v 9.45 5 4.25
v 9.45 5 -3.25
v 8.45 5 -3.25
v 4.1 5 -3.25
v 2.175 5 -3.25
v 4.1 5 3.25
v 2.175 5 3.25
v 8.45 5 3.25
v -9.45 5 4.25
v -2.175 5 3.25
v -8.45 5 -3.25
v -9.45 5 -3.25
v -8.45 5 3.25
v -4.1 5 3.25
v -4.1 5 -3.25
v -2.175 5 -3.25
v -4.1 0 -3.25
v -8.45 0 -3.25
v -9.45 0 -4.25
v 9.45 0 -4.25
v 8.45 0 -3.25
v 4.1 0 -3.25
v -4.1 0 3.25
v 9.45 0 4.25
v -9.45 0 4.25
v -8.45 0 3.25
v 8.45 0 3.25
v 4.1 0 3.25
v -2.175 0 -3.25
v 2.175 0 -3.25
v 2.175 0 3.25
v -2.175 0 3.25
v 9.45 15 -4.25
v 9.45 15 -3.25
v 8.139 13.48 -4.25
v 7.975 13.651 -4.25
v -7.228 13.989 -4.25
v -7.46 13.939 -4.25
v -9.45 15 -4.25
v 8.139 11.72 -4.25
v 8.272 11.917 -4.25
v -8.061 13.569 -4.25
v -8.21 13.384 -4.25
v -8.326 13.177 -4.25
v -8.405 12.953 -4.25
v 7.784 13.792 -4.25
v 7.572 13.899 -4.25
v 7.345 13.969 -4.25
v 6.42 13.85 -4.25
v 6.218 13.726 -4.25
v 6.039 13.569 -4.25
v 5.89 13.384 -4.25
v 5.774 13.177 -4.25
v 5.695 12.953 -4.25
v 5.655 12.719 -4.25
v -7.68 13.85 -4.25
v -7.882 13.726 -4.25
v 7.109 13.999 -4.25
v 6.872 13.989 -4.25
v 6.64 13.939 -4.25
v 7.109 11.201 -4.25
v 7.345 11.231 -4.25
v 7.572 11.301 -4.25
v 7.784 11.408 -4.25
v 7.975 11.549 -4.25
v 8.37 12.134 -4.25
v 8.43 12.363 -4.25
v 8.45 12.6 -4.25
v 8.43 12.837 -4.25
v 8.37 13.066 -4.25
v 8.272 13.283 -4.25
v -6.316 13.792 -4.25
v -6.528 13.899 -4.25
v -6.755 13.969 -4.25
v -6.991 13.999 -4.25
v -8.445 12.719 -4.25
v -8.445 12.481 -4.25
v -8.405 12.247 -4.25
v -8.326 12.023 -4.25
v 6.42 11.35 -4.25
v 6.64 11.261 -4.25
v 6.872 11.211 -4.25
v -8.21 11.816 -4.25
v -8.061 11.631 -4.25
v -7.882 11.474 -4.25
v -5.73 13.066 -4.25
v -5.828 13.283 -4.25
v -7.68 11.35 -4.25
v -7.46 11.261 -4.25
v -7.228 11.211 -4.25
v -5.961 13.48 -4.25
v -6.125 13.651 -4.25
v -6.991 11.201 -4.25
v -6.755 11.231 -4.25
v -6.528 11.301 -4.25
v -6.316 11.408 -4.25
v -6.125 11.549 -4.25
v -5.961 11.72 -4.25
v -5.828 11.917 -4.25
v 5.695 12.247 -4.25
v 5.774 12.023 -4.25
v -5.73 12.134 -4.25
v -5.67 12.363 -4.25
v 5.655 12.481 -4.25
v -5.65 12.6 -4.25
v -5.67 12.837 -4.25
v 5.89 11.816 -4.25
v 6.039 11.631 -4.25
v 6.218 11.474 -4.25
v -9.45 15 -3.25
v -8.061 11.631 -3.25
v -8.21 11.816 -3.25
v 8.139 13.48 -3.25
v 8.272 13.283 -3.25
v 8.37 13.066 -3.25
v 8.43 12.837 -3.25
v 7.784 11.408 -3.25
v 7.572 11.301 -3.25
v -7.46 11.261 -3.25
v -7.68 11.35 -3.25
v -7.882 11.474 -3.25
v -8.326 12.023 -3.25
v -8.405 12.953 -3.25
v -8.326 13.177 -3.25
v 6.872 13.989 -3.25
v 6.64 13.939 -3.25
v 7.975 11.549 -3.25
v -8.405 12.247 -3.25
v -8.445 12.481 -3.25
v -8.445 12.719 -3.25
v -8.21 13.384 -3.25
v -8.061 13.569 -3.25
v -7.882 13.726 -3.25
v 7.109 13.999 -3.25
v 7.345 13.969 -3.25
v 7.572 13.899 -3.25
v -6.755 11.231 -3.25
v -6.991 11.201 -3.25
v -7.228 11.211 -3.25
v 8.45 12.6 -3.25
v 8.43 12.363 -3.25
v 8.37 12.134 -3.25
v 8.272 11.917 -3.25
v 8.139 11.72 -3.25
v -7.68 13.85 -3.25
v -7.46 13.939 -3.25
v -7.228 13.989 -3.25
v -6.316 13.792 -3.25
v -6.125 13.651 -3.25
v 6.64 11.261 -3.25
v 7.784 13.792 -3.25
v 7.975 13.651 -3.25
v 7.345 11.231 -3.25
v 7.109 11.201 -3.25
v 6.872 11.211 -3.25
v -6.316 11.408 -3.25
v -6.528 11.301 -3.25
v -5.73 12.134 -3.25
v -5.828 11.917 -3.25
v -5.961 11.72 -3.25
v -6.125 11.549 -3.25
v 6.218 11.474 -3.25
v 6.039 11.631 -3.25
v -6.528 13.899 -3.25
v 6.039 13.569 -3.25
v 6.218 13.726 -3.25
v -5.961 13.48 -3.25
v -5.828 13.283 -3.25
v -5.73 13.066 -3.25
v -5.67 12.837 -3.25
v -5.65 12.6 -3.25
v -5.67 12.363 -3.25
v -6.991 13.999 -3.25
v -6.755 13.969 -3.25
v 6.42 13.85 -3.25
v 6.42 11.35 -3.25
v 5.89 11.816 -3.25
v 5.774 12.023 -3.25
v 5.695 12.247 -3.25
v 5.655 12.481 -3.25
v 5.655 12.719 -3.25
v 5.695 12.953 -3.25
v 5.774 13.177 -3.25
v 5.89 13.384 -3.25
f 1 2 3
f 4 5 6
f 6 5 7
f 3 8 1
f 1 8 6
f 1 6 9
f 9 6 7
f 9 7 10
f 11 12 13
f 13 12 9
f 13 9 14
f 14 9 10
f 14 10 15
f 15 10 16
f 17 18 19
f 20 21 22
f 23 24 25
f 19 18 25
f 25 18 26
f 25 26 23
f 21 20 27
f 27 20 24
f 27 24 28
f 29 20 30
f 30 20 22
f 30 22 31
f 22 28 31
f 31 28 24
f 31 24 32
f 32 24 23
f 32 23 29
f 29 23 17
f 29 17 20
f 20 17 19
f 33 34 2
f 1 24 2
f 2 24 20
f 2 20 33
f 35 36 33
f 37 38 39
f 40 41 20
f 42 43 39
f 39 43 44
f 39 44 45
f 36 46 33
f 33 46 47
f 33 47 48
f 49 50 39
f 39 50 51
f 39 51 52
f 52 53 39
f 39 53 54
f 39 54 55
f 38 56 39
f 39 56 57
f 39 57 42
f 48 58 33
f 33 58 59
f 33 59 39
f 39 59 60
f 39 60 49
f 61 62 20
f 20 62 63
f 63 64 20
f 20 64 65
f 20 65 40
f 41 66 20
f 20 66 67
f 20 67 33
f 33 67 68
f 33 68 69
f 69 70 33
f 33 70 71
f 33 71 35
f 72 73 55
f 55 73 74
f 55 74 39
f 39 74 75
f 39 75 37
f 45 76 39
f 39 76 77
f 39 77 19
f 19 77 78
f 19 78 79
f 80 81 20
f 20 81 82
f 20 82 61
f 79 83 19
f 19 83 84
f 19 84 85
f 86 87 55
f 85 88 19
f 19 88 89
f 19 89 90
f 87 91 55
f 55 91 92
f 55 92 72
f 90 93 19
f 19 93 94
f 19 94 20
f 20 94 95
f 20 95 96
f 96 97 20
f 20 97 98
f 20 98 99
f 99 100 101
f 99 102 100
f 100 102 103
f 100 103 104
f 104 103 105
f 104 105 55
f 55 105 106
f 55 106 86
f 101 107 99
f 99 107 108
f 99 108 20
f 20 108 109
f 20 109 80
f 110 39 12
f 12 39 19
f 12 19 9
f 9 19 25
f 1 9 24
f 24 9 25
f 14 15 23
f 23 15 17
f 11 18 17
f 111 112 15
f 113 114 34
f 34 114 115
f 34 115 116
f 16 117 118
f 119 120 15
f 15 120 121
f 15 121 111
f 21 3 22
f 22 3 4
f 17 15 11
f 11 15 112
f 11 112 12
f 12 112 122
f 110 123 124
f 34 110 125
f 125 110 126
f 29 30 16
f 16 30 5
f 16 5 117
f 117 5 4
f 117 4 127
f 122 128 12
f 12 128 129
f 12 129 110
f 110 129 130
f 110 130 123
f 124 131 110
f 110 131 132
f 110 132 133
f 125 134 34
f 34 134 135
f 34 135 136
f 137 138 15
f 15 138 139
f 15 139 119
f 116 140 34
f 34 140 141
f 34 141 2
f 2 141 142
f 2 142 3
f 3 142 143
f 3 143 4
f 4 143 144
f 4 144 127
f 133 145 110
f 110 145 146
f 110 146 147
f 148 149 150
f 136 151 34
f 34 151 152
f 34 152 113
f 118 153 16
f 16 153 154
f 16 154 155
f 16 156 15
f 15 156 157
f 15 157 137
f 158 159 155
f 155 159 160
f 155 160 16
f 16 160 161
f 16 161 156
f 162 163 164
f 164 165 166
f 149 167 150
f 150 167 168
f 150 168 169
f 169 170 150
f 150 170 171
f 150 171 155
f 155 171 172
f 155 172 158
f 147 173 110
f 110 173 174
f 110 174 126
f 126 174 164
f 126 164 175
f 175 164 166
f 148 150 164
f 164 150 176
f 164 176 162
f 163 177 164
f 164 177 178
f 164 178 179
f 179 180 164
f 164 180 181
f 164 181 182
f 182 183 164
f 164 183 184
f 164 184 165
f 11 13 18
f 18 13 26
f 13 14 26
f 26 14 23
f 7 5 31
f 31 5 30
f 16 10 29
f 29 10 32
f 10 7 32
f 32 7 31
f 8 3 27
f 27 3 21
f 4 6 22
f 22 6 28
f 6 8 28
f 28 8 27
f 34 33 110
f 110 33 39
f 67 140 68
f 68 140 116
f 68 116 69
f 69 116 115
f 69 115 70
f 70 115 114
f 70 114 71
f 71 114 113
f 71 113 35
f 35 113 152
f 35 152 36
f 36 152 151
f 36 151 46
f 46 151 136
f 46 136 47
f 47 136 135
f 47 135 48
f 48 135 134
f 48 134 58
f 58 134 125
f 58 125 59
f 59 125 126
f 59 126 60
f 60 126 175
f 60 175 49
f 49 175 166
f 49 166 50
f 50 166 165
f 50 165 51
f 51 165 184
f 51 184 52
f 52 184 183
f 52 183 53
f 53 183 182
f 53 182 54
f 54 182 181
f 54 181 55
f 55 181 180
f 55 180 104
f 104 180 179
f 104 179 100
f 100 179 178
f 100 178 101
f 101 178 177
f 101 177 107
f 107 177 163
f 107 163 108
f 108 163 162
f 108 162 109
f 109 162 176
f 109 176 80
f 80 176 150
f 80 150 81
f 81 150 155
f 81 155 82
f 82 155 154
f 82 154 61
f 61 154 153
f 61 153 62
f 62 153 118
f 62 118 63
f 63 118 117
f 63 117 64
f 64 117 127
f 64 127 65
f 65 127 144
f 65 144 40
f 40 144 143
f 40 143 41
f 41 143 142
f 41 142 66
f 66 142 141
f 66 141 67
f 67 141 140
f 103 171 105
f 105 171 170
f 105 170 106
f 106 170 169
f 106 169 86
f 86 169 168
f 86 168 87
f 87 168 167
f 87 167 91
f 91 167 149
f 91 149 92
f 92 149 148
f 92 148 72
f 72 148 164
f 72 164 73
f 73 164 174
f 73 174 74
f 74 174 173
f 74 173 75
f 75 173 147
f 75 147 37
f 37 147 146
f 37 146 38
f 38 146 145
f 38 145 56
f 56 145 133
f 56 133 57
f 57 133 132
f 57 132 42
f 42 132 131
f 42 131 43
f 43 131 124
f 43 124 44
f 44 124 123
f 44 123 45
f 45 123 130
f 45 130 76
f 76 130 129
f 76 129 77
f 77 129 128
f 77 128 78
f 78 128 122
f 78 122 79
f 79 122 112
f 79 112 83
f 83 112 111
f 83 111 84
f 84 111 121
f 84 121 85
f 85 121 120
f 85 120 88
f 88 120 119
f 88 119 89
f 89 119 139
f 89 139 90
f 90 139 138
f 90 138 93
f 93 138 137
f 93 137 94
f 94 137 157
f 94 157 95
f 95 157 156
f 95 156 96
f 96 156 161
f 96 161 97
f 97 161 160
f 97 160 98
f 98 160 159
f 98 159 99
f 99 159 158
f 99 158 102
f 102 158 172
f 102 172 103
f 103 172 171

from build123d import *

# Parameters (mm, degrees)
SKETCH1_W           = 18.9
SKETCH1_H           = 8.5
SKETCH1_W_2         = 4.35
SKETCH1_H_2         = 6.5
BOSS_EXTRUDE1_DEPTH = 5
SKETCH2_W           = 18.9
SKETCH2_H           = 1
BOSS_EXTRUDE2_DEPTH = 10
SKETCH3_R           = 1.4
CUT_EXTRUDE1_DEPTH  = 2


with BuildPart() as part:
    # Sketch1 → Boss-Extrude1 (new body)
    with BuildSketch(Plane(origin=(0, 0, 0), x_dir=(1, 0, 0), z_dir=(0, 1, 0))):
        Rectangle(SKETCH1_W, SKETCH1_H)
        with Locations((-6.275, 0)):
            Rectangle(SKETCH1_W_2, SKETCH1_H_2, mode=Mode.SUBTRACT)
        Rectangle(SKETCH1_W_2, SKETCH1_H_2, mode=Mode.SUBTRACT)
        with Locations((6.275, 0)):
            Rectangle(SKETCH1_W_2, SKETCH1_H_2, mode=Mode.SUBTRACT)
    extrude(amount=BOSS_EXTRUDE1_DEPTH)

    # Sketch2 → Boss-Extrude2 (add)
    with BuildSketch(Plane(origin=(0, 5, 0), x_dir=(1, 0, 0), z_dir=(0, 1, 0))):
        with Locations((0, 3.75)):
            Rectangle(SKETCH2_W, SKETCH2_H)
    extrude(amount=BOSS_EXTRUDE2_DEPTH)

    # Sketch3 → Cut-Extrude1 (cut, through all)
    with BuildSketch(Plane.XY.offset(-3.25)):
        with Locations((7.05, 12.6)):
            Circle(SKETCH3_R)
        with Locations((-7.05, 12.6)):
            Circle(SKETCH3_R)
    extrude(amount=-CUT_EXTRUDE1_DEPTH, mode=Mode.SUBTRACT)


solid = part.part
